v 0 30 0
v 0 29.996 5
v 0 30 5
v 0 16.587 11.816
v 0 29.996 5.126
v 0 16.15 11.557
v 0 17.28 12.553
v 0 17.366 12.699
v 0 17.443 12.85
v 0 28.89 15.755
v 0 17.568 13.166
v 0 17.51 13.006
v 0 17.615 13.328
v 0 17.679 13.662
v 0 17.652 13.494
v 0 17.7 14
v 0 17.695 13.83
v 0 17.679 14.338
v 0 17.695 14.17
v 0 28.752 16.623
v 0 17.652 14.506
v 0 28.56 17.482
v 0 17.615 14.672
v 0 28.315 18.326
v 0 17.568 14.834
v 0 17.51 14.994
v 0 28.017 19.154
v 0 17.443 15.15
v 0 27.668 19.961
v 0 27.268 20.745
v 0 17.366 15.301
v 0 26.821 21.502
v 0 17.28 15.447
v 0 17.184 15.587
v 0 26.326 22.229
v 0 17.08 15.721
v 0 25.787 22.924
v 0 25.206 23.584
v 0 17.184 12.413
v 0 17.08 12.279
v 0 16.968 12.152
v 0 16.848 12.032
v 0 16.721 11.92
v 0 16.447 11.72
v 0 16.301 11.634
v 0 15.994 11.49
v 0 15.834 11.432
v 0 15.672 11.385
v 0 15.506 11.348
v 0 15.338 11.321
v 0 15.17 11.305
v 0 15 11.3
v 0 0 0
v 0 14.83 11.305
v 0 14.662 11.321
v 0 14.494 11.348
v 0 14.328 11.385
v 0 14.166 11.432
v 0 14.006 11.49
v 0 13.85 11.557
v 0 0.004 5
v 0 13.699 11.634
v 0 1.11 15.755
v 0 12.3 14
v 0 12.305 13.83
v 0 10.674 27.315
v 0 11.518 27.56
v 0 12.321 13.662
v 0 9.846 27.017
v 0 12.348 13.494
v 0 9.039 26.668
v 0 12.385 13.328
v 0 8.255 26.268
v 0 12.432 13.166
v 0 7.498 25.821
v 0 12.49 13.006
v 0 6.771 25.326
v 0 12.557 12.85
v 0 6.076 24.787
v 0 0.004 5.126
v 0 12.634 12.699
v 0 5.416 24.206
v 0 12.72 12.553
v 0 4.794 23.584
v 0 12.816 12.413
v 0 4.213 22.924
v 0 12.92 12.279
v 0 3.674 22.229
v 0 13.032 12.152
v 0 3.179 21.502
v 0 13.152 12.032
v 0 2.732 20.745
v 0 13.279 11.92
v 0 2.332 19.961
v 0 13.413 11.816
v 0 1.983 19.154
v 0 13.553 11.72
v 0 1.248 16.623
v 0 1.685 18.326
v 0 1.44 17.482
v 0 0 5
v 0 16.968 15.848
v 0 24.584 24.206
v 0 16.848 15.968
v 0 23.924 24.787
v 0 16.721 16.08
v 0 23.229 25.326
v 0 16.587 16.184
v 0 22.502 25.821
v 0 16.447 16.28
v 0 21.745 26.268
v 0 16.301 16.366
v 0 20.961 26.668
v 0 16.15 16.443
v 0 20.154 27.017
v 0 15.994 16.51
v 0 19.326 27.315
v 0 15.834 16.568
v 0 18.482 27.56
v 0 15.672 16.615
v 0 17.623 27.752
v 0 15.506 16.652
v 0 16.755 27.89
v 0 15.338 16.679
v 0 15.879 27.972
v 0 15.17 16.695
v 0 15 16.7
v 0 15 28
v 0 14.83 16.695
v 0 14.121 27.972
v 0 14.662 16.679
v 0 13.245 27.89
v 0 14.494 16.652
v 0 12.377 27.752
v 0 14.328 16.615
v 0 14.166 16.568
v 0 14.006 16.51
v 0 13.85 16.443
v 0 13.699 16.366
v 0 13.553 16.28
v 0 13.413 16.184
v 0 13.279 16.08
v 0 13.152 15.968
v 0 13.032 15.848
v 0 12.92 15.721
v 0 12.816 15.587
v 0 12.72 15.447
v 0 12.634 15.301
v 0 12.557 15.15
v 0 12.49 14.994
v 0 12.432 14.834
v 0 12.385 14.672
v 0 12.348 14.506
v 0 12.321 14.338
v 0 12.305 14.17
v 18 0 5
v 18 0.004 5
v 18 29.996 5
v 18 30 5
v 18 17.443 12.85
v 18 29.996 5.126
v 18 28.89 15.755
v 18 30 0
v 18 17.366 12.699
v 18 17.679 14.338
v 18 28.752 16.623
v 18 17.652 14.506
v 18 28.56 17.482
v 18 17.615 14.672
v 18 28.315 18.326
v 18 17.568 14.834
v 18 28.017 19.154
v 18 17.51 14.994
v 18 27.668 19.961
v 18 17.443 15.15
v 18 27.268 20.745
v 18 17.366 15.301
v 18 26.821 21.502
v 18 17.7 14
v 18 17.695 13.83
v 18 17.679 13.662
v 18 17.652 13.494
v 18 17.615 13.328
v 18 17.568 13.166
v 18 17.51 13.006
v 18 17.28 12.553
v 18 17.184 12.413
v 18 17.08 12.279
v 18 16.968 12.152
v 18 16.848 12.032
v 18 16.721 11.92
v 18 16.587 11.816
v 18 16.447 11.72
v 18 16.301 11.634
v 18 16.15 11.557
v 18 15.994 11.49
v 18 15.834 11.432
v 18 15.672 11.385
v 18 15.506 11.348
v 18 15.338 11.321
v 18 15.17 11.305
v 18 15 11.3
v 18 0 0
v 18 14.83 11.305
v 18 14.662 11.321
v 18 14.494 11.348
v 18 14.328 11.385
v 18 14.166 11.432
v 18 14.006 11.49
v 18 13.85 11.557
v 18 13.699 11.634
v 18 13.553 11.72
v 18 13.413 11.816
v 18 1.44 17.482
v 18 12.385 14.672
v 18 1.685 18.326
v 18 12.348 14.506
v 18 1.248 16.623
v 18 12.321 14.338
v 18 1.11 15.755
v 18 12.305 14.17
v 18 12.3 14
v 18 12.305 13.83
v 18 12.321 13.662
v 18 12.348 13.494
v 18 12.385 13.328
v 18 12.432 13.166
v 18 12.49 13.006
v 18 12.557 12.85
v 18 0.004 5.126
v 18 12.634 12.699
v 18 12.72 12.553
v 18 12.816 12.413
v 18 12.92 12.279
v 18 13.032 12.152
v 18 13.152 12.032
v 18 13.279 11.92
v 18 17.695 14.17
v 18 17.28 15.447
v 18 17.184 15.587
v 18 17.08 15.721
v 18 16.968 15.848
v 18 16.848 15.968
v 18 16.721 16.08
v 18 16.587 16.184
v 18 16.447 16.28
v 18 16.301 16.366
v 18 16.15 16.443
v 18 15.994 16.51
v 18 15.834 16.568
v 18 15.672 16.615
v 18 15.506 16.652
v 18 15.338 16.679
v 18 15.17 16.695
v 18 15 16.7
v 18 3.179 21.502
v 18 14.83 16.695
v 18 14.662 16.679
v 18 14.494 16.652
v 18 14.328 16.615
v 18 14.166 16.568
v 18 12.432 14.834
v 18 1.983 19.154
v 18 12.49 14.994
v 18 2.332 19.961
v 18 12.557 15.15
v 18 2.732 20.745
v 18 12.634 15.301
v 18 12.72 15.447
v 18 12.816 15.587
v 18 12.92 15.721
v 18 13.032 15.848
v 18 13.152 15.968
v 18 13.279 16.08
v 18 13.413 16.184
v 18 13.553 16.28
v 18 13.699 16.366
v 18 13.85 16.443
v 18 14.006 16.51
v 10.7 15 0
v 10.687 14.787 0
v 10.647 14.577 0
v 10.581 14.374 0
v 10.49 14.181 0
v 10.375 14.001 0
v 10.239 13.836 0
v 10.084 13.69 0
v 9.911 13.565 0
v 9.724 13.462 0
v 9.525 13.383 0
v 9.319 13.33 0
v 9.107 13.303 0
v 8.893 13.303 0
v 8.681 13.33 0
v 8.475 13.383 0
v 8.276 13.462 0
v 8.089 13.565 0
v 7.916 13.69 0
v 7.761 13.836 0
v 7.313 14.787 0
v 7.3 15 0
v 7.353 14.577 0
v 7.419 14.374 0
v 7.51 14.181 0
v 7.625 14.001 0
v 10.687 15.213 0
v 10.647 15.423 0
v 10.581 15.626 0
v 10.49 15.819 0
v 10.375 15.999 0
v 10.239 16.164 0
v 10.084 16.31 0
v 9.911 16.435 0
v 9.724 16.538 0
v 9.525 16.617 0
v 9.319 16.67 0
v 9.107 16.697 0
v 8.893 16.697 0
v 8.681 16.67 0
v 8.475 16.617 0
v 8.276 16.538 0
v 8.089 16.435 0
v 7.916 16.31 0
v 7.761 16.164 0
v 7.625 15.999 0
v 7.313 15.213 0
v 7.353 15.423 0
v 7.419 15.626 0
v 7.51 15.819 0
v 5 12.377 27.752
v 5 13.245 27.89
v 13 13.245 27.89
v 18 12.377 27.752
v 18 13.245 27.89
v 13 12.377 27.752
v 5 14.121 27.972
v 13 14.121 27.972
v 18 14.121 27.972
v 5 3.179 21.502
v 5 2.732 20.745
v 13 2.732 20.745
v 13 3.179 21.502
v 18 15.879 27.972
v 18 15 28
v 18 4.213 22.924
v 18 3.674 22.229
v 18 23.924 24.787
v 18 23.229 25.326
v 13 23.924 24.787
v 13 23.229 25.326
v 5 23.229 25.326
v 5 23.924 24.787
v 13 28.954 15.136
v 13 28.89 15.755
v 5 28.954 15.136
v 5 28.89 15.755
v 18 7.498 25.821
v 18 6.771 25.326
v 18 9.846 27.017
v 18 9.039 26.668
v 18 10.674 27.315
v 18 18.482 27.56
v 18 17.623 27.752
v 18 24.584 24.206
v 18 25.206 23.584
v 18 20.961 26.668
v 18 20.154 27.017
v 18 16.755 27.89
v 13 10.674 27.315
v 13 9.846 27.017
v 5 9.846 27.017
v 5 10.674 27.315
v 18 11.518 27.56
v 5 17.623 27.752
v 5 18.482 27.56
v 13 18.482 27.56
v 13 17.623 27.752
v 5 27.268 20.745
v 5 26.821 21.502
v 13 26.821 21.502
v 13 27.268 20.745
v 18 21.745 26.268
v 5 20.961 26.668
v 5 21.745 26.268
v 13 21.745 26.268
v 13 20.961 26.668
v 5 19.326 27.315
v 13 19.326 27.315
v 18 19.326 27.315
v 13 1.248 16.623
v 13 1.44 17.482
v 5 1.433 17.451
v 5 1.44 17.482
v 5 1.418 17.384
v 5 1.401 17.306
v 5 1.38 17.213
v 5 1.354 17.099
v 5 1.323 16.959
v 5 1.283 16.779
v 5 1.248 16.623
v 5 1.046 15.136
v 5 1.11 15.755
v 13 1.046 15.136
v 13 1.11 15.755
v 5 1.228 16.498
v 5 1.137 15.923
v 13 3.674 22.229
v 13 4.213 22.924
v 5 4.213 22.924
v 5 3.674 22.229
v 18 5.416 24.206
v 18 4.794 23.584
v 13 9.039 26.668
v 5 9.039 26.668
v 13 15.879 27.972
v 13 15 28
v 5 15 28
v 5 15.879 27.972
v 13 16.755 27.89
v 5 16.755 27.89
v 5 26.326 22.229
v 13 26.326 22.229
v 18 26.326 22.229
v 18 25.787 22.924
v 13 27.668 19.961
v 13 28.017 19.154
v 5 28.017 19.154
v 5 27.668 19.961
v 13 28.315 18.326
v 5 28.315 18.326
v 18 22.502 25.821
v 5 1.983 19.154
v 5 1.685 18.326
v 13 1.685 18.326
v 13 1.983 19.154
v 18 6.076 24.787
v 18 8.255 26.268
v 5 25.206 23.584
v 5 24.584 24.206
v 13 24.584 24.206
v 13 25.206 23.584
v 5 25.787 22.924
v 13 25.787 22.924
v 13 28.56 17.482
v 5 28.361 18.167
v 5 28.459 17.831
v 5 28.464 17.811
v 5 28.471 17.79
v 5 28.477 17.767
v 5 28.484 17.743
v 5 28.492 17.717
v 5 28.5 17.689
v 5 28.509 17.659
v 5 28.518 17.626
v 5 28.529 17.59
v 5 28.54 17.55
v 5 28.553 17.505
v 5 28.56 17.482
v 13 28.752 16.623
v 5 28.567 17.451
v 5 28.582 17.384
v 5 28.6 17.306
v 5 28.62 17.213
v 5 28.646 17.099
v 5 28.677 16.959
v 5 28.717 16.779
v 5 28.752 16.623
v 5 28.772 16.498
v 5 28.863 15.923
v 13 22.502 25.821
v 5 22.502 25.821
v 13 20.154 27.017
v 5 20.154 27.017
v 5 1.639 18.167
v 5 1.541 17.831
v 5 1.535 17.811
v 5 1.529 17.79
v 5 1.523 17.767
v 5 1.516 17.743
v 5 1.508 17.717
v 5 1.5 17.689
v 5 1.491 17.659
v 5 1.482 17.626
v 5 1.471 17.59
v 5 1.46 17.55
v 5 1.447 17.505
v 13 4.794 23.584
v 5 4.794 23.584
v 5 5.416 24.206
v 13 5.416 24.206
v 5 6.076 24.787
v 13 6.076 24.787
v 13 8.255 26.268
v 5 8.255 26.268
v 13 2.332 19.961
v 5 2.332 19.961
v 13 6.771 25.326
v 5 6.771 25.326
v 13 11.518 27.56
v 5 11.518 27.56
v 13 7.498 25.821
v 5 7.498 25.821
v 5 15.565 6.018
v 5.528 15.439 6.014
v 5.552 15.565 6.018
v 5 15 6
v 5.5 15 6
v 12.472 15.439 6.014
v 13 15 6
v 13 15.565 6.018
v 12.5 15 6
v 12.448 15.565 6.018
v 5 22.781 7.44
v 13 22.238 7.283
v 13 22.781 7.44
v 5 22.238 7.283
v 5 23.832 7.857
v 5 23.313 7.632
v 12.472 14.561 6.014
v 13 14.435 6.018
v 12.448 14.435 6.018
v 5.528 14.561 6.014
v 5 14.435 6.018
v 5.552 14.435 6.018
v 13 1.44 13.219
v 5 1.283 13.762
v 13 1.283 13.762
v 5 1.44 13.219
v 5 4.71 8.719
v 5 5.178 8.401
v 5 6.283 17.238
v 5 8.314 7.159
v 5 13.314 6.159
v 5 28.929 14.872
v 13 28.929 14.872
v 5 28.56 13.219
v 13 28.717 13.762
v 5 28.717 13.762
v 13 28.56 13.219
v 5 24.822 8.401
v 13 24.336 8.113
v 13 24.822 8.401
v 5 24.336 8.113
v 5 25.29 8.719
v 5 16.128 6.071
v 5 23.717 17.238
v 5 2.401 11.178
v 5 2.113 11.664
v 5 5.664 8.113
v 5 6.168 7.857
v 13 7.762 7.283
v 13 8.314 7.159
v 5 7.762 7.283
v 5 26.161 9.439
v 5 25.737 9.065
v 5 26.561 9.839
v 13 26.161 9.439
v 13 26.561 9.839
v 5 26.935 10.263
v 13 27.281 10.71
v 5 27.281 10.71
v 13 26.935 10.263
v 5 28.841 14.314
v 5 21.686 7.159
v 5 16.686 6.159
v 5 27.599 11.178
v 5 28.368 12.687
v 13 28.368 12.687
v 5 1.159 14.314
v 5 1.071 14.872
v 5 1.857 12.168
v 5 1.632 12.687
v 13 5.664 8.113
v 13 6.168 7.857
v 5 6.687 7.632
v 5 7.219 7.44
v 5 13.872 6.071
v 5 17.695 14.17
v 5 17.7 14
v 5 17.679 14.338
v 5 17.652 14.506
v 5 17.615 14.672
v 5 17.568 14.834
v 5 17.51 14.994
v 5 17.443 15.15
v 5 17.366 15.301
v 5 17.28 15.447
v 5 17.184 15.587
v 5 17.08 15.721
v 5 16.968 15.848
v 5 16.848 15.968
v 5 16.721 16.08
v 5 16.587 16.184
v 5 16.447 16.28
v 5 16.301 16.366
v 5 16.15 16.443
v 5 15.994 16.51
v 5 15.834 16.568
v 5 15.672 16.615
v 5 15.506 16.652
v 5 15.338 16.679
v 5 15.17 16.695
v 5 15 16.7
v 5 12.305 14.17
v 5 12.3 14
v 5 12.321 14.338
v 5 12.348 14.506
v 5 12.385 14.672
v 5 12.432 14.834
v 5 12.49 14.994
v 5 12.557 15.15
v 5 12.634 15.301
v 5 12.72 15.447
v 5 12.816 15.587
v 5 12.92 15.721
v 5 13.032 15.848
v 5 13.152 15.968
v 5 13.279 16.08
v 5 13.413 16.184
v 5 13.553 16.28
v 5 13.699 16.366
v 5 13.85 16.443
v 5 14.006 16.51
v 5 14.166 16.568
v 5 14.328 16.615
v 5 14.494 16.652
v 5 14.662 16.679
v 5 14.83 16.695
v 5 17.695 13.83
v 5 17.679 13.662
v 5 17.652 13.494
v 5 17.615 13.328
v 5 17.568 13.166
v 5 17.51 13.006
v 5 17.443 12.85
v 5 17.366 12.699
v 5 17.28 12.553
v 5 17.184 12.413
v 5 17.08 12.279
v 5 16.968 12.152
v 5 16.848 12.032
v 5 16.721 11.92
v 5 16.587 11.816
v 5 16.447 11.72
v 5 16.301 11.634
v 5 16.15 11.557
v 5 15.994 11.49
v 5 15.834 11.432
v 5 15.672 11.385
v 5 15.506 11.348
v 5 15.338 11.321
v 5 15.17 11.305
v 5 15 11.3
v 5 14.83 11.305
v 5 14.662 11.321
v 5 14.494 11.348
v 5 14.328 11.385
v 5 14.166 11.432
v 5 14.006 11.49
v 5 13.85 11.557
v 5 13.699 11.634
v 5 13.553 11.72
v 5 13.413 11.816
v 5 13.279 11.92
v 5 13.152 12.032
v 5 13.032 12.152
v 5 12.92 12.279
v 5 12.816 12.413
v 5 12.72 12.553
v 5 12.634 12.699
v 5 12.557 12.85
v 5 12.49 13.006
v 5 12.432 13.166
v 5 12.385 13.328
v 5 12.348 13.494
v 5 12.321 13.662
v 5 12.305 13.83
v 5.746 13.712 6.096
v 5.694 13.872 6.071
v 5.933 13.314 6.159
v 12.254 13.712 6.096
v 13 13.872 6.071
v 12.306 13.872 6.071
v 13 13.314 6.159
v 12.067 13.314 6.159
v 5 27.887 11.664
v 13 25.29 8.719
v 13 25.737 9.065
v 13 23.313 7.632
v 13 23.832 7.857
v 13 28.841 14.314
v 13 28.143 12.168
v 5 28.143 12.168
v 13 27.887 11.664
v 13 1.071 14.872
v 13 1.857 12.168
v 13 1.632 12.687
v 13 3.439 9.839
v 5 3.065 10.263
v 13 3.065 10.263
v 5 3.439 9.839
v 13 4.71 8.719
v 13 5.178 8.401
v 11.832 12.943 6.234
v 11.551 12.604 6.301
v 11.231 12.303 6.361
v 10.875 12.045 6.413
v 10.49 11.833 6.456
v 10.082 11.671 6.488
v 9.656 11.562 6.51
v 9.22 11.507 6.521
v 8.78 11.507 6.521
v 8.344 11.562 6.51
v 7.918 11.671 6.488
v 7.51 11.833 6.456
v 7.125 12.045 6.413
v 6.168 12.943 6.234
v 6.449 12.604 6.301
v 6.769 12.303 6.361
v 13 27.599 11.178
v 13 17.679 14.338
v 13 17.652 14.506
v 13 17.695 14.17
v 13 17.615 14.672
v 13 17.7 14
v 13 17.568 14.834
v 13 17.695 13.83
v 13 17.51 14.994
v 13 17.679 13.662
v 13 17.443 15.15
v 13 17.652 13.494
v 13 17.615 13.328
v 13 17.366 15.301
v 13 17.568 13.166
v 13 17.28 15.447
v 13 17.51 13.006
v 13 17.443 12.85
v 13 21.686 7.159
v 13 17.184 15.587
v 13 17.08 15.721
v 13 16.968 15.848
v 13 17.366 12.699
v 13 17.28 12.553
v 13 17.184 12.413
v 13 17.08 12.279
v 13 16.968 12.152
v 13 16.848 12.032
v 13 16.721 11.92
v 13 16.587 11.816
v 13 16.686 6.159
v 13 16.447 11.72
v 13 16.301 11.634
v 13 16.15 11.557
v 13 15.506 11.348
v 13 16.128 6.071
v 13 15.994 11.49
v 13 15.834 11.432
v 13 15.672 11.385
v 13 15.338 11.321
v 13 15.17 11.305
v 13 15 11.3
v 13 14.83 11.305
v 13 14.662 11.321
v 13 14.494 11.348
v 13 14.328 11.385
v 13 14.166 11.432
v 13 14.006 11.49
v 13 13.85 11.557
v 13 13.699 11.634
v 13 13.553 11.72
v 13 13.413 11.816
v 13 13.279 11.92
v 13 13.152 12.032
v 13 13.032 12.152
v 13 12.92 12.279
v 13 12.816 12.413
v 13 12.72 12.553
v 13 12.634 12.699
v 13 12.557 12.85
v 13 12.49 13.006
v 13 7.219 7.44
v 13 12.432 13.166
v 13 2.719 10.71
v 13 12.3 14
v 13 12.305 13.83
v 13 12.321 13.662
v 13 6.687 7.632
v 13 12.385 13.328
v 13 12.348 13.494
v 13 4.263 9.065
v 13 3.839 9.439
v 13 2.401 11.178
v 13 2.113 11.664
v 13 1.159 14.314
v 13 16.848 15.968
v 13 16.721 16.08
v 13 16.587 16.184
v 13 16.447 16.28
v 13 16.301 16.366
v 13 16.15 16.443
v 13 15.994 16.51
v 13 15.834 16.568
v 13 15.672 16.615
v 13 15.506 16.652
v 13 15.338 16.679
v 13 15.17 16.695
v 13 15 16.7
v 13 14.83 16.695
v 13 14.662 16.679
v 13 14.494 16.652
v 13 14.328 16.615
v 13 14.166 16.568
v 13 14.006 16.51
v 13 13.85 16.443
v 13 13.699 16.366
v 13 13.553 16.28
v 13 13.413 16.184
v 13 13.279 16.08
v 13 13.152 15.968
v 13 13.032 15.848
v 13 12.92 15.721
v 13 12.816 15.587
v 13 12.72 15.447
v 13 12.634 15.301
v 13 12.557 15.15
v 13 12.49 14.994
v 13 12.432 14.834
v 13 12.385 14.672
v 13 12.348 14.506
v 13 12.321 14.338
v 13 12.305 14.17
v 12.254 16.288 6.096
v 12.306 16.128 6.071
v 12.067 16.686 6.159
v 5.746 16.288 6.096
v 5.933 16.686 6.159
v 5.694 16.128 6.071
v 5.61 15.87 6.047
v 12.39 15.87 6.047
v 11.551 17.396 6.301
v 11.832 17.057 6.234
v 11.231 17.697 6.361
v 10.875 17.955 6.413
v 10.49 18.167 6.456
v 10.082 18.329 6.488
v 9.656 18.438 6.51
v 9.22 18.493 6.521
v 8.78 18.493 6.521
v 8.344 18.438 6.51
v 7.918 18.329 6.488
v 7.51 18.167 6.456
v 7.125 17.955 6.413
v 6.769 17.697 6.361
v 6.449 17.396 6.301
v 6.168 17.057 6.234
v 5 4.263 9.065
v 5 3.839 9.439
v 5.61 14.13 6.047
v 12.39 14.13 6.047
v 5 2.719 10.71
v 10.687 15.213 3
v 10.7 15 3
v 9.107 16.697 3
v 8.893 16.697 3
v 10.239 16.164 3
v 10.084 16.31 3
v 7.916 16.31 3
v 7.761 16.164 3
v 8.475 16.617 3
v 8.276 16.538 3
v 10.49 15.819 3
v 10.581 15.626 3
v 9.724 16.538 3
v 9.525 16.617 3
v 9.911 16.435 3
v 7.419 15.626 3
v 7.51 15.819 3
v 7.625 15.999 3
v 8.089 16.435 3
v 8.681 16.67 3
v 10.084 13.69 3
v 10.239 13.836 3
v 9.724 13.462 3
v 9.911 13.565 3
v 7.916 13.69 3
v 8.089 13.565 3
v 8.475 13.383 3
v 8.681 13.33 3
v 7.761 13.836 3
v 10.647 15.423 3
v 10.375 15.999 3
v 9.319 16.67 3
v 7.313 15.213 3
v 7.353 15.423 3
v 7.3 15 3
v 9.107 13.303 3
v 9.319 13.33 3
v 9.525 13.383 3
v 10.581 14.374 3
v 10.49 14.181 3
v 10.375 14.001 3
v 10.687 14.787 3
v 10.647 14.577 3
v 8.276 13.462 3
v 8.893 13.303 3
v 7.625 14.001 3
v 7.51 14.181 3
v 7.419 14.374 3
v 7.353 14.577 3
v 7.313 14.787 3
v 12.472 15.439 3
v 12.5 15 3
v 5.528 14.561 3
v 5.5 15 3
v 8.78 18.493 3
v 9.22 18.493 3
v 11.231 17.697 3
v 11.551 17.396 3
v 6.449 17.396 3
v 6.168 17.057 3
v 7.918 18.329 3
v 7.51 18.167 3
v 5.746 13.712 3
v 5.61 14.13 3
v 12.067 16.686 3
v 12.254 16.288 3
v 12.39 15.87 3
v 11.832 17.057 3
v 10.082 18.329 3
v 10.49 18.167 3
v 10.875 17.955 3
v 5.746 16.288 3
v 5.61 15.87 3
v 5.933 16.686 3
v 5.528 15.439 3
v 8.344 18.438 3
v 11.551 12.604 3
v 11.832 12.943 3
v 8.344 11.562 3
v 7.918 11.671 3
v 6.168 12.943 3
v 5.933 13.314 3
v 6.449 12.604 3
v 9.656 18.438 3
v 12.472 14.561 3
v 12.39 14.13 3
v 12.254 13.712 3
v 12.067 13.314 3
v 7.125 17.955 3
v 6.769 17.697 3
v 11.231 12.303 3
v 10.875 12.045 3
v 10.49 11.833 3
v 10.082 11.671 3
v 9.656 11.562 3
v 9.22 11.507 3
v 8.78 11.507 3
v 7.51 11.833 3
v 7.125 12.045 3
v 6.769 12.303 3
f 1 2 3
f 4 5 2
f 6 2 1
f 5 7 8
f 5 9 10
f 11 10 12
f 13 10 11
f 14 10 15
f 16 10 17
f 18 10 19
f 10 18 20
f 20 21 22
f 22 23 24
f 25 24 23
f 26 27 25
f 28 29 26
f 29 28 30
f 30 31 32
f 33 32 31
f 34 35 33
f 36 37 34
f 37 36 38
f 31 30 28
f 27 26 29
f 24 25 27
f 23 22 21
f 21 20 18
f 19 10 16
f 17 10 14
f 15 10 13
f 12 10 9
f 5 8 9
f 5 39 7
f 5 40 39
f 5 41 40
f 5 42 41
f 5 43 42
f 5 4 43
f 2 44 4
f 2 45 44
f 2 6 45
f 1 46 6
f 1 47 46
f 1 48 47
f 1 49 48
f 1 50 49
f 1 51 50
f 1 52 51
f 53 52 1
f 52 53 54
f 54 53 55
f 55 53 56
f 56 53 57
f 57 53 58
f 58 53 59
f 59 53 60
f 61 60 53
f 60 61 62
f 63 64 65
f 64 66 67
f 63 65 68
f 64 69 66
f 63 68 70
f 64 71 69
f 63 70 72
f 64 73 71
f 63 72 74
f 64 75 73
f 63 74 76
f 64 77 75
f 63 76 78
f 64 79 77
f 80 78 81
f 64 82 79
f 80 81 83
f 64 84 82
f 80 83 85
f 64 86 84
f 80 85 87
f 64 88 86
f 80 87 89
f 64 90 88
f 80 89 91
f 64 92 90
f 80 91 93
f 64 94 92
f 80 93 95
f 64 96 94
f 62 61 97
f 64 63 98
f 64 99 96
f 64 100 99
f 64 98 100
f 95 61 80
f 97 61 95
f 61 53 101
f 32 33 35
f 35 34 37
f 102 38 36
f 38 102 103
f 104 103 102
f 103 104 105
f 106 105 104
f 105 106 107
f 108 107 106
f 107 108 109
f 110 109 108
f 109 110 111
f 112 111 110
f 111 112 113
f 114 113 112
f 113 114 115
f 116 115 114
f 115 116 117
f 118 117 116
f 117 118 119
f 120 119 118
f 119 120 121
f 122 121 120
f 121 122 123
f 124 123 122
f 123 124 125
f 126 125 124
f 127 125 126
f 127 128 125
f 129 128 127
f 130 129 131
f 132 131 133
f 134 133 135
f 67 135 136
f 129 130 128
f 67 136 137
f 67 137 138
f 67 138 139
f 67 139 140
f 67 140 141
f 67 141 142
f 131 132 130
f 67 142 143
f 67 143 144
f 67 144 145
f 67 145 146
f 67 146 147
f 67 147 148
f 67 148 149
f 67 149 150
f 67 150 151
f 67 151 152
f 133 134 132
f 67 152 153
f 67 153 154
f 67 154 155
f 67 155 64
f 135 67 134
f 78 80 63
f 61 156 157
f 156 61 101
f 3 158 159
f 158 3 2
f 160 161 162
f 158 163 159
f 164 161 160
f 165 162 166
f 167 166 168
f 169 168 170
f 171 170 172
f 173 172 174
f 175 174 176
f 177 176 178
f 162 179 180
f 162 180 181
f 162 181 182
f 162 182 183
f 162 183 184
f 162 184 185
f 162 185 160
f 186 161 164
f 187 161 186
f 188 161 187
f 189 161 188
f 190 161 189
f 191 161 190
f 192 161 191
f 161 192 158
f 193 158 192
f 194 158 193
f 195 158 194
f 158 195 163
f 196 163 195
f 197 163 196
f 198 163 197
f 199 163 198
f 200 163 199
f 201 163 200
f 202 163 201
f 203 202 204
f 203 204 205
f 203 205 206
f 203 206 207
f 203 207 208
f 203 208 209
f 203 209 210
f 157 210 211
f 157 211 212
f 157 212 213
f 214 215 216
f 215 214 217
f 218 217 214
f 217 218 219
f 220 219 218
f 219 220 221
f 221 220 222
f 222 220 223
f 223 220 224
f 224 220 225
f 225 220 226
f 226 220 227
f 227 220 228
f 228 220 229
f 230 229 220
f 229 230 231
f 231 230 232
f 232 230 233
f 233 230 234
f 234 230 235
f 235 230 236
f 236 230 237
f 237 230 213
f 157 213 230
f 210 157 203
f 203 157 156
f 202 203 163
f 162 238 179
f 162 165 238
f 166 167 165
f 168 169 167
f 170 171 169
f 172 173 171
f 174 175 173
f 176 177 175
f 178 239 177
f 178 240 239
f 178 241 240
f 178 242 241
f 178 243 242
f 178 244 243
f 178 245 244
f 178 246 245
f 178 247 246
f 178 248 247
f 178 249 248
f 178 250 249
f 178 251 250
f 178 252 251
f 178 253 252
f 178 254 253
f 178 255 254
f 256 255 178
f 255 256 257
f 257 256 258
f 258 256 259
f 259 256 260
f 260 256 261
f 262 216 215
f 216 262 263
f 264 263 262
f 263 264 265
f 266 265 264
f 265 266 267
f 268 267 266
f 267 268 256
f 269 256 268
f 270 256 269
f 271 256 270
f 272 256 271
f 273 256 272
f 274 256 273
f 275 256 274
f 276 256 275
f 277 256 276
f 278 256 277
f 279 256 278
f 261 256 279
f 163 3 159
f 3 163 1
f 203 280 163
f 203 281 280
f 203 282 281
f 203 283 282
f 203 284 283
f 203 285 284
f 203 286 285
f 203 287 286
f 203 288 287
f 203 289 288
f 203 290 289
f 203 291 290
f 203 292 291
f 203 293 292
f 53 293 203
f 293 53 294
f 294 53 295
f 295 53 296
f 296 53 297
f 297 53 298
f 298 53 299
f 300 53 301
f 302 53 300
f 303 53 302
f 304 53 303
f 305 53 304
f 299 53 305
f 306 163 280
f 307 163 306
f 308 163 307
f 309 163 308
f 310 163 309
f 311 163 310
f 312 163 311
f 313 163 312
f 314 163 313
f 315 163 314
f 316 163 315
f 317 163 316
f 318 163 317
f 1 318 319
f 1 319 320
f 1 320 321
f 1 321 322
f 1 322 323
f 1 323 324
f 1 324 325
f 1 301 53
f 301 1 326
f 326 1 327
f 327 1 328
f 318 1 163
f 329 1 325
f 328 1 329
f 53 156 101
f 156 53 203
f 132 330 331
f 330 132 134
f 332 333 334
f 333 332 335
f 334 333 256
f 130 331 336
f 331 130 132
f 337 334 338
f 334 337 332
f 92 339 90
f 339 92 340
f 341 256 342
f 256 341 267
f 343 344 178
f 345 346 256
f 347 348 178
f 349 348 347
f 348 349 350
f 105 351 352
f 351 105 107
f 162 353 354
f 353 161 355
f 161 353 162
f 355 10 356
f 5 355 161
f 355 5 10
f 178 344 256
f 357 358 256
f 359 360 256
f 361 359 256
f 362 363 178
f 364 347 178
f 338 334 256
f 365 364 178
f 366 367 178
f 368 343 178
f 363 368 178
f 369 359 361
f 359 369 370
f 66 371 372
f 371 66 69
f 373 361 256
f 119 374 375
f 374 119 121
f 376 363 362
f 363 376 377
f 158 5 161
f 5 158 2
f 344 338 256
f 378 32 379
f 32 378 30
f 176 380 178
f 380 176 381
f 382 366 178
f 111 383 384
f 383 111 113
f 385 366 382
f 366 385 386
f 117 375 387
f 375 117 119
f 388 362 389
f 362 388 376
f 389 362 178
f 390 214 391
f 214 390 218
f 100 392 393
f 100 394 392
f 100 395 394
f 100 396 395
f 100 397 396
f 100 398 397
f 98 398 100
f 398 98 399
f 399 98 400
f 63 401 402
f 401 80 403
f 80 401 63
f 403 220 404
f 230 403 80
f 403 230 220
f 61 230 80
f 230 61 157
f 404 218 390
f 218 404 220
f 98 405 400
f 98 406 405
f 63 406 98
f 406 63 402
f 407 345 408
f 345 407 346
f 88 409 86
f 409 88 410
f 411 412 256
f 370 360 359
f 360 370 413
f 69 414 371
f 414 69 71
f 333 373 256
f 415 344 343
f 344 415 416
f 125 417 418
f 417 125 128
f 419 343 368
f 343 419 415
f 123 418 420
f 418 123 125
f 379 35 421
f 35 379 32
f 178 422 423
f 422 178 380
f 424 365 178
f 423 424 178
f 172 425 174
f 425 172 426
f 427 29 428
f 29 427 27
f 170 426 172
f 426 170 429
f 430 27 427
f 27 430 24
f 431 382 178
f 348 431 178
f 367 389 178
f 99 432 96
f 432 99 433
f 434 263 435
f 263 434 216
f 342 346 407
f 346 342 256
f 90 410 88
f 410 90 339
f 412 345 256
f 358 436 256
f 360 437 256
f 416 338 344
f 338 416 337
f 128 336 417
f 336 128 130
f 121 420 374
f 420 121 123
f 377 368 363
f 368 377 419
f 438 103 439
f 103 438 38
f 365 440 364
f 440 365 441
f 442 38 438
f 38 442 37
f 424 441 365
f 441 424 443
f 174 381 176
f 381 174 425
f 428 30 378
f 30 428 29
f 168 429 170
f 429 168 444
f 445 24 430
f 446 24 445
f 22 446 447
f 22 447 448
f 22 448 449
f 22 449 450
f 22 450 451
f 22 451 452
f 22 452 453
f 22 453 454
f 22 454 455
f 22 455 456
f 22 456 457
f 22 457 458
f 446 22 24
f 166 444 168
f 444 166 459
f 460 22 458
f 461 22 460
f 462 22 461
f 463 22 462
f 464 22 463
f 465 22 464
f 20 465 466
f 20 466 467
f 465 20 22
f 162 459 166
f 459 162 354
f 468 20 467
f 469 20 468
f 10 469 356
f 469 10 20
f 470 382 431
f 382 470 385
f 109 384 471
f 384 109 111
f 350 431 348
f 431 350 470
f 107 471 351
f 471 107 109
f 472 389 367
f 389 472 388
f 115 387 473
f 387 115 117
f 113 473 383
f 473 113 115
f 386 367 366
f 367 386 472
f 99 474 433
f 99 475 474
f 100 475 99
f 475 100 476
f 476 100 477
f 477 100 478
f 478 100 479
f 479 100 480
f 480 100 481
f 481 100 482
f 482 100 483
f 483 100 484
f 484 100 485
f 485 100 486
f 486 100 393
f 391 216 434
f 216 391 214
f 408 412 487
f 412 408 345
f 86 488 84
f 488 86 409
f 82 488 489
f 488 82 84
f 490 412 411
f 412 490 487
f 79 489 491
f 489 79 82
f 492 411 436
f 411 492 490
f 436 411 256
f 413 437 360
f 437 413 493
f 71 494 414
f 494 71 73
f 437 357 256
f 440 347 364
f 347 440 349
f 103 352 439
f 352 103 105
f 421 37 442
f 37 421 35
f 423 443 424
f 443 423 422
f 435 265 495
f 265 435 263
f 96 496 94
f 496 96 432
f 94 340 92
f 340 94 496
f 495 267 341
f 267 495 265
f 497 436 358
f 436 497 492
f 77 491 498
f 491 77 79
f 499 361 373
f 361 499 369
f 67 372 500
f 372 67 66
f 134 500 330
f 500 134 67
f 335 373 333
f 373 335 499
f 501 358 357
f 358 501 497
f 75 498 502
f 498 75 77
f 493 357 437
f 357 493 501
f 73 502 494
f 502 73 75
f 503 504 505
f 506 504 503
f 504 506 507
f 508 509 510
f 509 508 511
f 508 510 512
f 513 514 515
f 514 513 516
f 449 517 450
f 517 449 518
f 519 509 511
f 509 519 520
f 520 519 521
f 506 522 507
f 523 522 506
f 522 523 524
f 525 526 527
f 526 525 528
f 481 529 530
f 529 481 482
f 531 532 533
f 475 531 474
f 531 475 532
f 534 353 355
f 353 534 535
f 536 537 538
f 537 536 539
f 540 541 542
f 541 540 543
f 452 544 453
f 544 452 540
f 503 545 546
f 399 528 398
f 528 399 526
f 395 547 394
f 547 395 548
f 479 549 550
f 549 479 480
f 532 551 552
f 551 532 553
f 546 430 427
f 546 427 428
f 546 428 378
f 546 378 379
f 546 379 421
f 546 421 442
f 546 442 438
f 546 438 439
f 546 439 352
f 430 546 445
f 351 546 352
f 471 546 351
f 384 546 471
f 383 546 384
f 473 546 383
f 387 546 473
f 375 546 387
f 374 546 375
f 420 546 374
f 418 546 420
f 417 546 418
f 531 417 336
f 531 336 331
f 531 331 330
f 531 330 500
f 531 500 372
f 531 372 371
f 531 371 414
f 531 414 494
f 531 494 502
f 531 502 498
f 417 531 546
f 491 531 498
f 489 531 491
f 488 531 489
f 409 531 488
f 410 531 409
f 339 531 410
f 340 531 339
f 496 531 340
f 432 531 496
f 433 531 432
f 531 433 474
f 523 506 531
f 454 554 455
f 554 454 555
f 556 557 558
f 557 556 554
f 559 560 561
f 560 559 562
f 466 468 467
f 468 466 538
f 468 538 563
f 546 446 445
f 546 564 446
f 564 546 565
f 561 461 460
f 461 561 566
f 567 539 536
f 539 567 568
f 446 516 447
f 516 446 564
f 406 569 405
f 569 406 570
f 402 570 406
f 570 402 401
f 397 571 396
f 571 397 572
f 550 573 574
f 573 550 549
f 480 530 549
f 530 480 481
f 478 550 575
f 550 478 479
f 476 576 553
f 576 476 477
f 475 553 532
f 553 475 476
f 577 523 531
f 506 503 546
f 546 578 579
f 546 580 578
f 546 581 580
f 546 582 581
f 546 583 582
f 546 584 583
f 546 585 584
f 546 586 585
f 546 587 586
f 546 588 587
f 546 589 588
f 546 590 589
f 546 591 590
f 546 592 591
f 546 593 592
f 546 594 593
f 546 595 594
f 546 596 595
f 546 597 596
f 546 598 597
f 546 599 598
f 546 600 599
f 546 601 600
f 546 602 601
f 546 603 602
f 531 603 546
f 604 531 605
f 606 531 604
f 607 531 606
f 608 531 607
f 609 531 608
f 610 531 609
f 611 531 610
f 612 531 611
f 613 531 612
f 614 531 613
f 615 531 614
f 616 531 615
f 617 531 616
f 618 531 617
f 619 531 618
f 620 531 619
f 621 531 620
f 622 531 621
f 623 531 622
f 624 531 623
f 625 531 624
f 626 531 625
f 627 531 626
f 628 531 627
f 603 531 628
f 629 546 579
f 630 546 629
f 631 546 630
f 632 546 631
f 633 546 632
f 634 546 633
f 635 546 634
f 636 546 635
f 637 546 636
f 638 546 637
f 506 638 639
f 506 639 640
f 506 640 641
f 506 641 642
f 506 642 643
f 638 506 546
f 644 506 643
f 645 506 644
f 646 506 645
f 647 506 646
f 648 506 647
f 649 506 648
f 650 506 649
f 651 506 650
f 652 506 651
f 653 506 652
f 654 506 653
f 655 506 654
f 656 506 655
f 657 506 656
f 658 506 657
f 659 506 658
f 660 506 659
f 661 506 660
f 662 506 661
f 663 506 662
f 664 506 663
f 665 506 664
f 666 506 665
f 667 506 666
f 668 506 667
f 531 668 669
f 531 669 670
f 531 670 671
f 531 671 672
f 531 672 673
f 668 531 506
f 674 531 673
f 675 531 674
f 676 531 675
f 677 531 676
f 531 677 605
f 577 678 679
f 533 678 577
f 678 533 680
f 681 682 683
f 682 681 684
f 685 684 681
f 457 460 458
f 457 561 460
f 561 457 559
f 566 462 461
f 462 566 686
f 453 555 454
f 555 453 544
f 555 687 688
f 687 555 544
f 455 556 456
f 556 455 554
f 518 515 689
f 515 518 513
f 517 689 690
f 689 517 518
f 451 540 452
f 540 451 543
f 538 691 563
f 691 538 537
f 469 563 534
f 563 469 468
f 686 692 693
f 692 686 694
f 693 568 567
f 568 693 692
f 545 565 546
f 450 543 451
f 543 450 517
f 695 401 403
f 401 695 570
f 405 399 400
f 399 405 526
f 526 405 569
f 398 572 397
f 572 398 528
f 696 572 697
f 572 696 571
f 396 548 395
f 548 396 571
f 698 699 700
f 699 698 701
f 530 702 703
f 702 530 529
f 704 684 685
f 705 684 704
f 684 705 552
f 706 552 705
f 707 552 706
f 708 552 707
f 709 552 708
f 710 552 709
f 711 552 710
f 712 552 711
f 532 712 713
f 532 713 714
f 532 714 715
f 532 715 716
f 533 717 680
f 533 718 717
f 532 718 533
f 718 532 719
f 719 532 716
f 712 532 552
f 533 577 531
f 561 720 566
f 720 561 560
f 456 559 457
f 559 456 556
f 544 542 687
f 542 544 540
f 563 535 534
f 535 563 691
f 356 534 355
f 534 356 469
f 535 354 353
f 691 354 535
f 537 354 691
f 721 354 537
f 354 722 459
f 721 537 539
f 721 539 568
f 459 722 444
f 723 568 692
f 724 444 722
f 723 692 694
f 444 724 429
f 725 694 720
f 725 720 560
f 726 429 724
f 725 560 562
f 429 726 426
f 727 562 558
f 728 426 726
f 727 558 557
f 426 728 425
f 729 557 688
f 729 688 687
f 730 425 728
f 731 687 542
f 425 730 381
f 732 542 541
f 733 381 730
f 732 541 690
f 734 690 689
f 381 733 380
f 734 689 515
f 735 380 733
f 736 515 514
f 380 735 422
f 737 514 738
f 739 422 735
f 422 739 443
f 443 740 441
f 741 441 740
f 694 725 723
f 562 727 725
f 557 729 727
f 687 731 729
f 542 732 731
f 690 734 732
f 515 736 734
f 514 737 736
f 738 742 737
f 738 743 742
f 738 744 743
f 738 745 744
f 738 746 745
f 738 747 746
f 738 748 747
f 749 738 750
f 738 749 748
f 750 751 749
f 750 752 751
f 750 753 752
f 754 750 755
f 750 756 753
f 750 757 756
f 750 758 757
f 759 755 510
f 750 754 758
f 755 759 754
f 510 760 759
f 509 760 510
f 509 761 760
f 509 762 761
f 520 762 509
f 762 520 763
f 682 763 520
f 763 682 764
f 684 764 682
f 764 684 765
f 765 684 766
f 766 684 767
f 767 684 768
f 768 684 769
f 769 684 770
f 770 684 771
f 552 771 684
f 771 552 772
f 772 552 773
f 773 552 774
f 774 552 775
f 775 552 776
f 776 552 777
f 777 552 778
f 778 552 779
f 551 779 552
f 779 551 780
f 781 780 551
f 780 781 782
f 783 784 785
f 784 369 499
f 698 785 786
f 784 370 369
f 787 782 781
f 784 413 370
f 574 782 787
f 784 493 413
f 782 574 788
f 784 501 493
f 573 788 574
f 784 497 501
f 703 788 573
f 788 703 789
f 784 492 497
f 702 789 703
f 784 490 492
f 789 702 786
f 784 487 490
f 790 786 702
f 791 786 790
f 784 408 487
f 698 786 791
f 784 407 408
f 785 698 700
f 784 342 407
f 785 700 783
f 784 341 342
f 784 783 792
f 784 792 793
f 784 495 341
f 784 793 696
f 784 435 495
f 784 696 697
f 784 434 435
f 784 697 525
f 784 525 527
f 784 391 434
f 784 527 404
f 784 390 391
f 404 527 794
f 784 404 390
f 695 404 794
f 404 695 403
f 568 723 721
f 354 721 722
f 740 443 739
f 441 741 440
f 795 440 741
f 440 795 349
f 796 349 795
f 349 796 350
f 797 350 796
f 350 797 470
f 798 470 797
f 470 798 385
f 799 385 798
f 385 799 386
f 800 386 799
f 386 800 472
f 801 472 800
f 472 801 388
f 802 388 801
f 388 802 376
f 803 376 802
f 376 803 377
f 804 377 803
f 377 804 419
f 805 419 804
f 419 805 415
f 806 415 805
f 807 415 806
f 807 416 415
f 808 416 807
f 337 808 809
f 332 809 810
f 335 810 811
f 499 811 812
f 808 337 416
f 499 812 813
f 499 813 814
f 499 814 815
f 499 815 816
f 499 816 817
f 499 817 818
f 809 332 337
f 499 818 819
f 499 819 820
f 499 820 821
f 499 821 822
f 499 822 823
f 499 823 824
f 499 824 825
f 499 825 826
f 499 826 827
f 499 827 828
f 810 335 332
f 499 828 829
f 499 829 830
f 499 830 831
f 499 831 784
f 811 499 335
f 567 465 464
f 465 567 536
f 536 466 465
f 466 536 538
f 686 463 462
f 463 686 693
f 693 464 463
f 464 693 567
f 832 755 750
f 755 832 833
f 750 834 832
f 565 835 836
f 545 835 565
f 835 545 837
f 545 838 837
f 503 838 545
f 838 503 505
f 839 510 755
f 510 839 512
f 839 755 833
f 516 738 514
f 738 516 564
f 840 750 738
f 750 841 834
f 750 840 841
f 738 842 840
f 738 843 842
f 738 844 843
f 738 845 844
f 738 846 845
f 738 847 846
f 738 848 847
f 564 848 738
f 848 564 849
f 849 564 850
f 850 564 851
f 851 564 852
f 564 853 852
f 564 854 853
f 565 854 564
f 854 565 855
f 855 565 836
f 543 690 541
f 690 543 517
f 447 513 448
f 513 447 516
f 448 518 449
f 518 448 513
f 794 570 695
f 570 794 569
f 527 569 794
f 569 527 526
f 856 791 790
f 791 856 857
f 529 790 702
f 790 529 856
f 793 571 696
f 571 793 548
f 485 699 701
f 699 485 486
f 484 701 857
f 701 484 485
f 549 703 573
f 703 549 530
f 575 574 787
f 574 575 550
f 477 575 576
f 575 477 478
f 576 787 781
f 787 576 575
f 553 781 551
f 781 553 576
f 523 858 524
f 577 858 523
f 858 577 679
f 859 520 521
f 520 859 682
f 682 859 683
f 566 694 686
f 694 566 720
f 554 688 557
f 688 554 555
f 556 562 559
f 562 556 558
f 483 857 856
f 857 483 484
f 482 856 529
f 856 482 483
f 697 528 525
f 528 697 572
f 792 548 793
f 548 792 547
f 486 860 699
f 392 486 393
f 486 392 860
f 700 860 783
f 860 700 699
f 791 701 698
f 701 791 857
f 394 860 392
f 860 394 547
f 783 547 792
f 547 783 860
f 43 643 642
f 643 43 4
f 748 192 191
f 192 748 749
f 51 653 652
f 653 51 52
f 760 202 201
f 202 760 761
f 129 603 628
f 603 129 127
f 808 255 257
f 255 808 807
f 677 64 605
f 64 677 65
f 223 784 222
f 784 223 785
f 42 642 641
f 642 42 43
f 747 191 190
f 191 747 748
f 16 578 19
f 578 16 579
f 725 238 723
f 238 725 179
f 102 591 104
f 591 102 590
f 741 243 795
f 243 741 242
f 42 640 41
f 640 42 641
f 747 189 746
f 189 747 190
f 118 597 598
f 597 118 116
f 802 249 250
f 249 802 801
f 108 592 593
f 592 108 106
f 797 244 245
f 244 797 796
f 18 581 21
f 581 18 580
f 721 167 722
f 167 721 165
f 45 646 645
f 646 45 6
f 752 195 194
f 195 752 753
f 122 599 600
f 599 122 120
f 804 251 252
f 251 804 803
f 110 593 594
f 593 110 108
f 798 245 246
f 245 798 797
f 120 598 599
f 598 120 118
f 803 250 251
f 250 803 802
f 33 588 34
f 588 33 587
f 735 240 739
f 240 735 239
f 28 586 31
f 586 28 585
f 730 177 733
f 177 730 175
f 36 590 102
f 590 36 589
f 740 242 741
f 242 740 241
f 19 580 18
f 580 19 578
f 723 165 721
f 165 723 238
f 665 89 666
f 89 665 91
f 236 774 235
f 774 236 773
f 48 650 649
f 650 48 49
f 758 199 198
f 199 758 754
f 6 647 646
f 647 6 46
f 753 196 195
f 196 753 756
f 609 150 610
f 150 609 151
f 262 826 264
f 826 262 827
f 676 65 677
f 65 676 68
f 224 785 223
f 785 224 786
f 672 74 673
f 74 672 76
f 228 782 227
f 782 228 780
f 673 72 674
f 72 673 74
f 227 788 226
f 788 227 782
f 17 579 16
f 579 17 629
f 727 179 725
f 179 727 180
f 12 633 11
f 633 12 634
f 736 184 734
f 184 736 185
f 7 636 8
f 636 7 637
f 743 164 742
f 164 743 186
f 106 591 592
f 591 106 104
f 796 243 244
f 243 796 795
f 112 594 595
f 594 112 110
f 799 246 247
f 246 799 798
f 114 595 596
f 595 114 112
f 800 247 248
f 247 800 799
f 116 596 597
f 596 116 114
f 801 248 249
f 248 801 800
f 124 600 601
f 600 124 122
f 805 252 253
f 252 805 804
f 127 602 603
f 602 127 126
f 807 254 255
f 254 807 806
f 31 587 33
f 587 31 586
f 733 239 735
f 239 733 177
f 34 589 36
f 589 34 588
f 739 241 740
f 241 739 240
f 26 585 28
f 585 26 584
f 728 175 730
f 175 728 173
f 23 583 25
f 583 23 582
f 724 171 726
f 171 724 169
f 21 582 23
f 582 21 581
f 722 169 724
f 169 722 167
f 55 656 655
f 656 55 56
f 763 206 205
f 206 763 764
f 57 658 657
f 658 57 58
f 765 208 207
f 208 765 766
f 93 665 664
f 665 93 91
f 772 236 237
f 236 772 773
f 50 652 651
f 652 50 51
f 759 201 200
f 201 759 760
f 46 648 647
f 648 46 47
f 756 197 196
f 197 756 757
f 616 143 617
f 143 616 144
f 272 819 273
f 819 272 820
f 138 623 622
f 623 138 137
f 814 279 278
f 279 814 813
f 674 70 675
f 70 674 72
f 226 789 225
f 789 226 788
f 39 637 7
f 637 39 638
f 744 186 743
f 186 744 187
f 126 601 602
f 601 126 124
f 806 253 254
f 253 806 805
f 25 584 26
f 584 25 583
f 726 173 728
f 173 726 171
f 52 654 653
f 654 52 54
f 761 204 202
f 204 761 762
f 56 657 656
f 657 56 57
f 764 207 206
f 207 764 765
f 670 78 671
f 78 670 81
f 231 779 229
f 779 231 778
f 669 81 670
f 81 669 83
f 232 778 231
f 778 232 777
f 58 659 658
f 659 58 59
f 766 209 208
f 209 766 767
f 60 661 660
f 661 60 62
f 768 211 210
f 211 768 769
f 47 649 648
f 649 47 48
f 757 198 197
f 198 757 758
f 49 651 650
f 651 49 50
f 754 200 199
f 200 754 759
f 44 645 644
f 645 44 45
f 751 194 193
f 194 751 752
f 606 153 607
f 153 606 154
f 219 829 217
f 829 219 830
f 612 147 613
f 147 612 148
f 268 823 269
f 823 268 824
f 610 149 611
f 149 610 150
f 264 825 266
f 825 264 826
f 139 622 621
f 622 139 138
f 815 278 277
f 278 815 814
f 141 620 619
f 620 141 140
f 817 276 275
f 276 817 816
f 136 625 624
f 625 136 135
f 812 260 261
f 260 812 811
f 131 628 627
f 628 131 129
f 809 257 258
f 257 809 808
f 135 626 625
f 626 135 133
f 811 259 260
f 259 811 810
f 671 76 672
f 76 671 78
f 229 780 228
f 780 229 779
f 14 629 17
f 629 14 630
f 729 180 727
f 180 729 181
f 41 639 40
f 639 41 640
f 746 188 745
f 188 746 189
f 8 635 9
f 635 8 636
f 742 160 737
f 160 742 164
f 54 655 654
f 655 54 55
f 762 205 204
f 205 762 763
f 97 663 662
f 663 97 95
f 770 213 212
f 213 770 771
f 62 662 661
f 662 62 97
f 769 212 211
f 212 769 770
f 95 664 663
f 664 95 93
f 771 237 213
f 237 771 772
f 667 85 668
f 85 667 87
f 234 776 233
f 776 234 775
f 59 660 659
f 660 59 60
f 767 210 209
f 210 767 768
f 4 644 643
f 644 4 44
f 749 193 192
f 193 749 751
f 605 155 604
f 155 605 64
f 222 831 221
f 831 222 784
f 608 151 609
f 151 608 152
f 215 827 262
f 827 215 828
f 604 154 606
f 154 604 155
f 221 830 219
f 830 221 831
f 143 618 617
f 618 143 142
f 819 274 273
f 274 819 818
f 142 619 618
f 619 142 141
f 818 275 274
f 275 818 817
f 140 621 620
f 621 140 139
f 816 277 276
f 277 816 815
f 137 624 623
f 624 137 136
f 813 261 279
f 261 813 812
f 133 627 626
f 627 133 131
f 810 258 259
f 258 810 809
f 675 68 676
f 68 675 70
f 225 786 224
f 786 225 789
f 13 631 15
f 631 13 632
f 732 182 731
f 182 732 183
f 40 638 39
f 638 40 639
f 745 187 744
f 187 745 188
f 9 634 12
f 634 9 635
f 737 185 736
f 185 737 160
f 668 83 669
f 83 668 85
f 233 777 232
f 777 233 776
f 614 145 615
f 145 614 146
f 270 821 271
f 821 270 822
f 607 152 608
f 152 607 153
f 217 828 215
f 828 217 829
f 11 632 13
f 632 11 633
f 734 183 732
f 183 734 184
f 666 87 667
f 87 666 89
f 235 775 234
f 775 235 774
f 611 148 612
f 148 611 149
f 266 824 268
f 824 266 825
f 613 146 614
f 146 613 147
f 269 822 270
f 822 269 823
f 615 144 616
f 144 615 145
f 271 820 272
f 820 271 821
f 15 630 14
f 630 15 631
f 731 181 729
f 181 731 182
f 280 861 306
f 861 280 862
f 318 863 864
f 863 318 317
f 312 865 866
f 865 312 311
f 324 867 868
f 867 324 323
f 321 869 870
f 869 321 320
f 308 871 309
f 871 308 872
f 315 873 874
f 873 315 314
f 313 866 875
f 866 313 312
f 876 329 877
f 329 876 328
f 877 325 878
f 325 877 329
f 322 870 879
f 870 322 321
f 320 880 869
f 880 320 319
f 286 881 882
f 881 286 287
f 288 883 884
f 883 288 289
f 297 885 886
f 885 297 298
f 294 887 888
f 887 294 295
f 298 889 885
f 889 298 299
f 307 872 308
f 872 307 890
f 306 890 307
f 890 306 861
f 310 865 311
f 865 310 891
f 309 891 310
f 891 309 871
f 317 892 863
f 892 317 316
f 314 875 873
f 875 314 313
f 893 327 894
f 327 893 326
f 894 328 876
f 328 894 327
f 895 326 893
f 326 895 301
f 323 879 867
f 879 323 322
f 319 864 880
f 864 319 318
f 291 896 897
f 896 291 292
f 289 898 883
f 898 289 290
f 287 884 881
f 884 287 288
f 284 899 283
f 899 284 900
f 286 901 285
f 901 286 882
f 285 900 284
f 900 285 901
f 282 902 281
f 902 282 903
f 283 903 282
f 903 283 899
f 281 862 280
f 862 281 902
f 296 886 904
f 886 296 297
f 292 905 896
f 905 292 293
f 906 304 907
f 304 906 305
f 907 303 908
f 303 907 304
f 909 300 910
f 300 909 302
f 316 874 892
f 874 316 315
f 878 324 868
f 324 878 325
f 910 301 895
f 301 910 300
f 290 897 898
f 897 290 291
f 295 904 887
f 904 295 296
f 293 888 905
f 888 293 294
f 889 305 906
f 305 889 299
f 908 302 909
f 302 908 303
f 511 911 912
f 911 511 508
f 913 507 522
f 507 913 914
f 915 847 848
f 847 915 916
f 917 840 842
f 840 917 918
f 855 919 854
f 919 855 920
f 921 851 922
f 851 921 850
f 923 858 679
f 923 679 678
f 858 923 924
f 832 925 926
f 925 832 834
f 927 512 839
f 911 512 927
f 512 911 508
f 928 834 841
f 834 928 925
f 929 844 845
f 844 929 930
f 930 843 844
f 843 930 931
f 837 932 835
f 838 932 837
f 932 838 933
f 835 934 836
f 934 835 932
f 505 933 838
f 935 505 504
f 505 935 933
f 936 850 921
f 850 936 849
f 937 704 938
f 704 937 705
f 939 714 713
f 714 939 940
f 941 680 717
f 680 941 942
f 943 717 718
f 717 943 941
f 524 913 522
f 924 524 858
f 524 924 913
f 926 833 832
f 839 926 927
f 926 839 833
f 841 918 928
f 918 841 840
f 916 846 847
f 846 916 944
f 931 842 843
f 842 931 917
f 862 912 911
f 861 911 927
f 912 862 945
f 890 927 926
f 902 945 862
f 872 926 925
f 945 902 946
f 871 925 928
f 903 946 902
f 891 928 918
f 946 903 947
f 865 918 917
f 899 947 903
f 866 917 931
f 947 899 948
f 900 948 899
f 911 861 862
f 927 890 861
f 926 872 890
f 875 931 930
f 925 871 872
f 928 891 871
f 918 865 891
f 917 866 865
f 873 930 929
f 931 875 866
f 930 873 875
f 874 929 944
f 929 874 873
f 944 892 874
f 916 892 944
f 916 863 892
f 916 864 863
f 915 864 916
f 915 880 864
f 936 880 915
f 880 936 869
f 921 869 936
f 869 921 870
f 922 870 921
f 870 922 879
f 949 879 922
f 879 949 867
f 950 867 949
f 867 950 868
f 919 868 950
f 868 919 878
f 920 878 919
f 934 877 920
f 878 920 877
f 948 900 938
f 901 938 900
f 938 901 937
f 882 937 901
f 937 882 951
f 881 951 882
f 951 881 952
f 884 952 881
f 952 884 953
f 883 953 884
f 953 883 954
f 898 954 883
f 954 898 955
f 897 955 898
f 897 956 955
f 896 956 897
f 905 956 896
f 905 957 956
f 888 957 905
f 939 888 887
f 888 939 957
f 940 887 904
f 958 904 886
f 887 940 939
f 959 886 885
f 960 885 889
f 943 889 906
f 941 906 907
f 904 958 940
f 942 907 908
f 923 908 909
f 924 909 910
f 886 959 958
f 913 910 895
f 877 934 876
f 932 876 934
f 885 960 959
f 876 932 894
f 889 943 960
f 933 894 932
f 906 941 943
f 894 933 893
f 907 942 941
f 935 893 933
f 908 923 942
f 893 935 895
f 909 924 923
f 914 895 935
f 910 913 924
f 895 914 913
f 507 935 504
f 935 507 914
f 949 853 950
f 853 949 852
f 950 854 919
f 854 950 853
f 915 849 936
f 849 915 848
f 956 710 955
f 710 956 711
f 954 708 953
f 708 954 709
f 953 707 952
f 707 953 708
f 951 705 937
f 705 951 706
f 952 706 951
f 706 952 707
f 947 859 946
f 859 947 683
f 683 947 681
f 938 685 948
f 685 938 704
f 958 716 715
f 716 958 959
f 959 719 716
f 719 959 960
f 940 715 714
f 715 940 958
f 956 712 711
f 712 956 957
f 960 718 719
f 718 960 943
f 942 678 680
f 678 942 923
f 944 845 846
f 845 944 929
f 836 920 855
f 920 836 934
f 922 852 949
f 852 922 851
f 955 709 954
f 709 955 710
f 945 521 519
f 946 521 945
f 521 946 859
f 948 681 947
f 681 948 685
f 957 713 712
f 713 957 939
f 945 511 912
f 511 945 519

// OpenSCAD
longueur=30;
largeur=18;
ep=5;

module support_bobine(){
    difference(){
        union(){
            cube([largeur,longueur,ep]);
            
            hull(){
                translate([0,2,5]){rotate([0,90,0])cylinder(h = largeur, r = 2, $fn=50);}
                translate([0,longueur/2,14]){rotate([0,90,0])cylinder(h = largeur, r = 14, $fn=100);}
                //translate([0,longueur/2+3,18]){rotate([0,90,0])cylinder(h = largeur, r = 5, $fn=50);}
                translate([0,longueur-2,5]){rotate([0,90,0])cylinder(h = largeur, r = 2, $fn=50);}
            }
            
           
        }
         //encastrement pour roulement
        hull(){
         translate([largeur/2-4,longueur/2,15]){rotate([0,90,0])cylinder(h = 8, r = 9, $fn=100);}
         translate([largeur/2-4,longueur/2,25]){rotate([0,90,0])cylinder(h = 8, r = 9, $fn=100);}
         translate([largeur/2-4,longueur/2-5,16]){rotate([0,90,0])cylinder(h = 8, r = 9, $fn=100);}
         translate([largeur/2-4,longueur/2+5,16]){rotate([0,90,0])cylinder(h = 8, r = 9, $fn=100);}
     }
         
         //trou pour vissage
         translate([-5,longueur/2,14]){rotate([0,90,0])cylinder(h = 25, r = 2.7, $fn=100);}
         
         //trou pour montage dans carter
         translate([largeur/2,longueur/2,-5]){cylinder(h = 25, r = 1.7, $fn=50);}
          translate([largeur/2,longueur/2,3]){cylinder(h = 25, r = 3.5, $fn=50);}
         
    }
}

support_bobine();
